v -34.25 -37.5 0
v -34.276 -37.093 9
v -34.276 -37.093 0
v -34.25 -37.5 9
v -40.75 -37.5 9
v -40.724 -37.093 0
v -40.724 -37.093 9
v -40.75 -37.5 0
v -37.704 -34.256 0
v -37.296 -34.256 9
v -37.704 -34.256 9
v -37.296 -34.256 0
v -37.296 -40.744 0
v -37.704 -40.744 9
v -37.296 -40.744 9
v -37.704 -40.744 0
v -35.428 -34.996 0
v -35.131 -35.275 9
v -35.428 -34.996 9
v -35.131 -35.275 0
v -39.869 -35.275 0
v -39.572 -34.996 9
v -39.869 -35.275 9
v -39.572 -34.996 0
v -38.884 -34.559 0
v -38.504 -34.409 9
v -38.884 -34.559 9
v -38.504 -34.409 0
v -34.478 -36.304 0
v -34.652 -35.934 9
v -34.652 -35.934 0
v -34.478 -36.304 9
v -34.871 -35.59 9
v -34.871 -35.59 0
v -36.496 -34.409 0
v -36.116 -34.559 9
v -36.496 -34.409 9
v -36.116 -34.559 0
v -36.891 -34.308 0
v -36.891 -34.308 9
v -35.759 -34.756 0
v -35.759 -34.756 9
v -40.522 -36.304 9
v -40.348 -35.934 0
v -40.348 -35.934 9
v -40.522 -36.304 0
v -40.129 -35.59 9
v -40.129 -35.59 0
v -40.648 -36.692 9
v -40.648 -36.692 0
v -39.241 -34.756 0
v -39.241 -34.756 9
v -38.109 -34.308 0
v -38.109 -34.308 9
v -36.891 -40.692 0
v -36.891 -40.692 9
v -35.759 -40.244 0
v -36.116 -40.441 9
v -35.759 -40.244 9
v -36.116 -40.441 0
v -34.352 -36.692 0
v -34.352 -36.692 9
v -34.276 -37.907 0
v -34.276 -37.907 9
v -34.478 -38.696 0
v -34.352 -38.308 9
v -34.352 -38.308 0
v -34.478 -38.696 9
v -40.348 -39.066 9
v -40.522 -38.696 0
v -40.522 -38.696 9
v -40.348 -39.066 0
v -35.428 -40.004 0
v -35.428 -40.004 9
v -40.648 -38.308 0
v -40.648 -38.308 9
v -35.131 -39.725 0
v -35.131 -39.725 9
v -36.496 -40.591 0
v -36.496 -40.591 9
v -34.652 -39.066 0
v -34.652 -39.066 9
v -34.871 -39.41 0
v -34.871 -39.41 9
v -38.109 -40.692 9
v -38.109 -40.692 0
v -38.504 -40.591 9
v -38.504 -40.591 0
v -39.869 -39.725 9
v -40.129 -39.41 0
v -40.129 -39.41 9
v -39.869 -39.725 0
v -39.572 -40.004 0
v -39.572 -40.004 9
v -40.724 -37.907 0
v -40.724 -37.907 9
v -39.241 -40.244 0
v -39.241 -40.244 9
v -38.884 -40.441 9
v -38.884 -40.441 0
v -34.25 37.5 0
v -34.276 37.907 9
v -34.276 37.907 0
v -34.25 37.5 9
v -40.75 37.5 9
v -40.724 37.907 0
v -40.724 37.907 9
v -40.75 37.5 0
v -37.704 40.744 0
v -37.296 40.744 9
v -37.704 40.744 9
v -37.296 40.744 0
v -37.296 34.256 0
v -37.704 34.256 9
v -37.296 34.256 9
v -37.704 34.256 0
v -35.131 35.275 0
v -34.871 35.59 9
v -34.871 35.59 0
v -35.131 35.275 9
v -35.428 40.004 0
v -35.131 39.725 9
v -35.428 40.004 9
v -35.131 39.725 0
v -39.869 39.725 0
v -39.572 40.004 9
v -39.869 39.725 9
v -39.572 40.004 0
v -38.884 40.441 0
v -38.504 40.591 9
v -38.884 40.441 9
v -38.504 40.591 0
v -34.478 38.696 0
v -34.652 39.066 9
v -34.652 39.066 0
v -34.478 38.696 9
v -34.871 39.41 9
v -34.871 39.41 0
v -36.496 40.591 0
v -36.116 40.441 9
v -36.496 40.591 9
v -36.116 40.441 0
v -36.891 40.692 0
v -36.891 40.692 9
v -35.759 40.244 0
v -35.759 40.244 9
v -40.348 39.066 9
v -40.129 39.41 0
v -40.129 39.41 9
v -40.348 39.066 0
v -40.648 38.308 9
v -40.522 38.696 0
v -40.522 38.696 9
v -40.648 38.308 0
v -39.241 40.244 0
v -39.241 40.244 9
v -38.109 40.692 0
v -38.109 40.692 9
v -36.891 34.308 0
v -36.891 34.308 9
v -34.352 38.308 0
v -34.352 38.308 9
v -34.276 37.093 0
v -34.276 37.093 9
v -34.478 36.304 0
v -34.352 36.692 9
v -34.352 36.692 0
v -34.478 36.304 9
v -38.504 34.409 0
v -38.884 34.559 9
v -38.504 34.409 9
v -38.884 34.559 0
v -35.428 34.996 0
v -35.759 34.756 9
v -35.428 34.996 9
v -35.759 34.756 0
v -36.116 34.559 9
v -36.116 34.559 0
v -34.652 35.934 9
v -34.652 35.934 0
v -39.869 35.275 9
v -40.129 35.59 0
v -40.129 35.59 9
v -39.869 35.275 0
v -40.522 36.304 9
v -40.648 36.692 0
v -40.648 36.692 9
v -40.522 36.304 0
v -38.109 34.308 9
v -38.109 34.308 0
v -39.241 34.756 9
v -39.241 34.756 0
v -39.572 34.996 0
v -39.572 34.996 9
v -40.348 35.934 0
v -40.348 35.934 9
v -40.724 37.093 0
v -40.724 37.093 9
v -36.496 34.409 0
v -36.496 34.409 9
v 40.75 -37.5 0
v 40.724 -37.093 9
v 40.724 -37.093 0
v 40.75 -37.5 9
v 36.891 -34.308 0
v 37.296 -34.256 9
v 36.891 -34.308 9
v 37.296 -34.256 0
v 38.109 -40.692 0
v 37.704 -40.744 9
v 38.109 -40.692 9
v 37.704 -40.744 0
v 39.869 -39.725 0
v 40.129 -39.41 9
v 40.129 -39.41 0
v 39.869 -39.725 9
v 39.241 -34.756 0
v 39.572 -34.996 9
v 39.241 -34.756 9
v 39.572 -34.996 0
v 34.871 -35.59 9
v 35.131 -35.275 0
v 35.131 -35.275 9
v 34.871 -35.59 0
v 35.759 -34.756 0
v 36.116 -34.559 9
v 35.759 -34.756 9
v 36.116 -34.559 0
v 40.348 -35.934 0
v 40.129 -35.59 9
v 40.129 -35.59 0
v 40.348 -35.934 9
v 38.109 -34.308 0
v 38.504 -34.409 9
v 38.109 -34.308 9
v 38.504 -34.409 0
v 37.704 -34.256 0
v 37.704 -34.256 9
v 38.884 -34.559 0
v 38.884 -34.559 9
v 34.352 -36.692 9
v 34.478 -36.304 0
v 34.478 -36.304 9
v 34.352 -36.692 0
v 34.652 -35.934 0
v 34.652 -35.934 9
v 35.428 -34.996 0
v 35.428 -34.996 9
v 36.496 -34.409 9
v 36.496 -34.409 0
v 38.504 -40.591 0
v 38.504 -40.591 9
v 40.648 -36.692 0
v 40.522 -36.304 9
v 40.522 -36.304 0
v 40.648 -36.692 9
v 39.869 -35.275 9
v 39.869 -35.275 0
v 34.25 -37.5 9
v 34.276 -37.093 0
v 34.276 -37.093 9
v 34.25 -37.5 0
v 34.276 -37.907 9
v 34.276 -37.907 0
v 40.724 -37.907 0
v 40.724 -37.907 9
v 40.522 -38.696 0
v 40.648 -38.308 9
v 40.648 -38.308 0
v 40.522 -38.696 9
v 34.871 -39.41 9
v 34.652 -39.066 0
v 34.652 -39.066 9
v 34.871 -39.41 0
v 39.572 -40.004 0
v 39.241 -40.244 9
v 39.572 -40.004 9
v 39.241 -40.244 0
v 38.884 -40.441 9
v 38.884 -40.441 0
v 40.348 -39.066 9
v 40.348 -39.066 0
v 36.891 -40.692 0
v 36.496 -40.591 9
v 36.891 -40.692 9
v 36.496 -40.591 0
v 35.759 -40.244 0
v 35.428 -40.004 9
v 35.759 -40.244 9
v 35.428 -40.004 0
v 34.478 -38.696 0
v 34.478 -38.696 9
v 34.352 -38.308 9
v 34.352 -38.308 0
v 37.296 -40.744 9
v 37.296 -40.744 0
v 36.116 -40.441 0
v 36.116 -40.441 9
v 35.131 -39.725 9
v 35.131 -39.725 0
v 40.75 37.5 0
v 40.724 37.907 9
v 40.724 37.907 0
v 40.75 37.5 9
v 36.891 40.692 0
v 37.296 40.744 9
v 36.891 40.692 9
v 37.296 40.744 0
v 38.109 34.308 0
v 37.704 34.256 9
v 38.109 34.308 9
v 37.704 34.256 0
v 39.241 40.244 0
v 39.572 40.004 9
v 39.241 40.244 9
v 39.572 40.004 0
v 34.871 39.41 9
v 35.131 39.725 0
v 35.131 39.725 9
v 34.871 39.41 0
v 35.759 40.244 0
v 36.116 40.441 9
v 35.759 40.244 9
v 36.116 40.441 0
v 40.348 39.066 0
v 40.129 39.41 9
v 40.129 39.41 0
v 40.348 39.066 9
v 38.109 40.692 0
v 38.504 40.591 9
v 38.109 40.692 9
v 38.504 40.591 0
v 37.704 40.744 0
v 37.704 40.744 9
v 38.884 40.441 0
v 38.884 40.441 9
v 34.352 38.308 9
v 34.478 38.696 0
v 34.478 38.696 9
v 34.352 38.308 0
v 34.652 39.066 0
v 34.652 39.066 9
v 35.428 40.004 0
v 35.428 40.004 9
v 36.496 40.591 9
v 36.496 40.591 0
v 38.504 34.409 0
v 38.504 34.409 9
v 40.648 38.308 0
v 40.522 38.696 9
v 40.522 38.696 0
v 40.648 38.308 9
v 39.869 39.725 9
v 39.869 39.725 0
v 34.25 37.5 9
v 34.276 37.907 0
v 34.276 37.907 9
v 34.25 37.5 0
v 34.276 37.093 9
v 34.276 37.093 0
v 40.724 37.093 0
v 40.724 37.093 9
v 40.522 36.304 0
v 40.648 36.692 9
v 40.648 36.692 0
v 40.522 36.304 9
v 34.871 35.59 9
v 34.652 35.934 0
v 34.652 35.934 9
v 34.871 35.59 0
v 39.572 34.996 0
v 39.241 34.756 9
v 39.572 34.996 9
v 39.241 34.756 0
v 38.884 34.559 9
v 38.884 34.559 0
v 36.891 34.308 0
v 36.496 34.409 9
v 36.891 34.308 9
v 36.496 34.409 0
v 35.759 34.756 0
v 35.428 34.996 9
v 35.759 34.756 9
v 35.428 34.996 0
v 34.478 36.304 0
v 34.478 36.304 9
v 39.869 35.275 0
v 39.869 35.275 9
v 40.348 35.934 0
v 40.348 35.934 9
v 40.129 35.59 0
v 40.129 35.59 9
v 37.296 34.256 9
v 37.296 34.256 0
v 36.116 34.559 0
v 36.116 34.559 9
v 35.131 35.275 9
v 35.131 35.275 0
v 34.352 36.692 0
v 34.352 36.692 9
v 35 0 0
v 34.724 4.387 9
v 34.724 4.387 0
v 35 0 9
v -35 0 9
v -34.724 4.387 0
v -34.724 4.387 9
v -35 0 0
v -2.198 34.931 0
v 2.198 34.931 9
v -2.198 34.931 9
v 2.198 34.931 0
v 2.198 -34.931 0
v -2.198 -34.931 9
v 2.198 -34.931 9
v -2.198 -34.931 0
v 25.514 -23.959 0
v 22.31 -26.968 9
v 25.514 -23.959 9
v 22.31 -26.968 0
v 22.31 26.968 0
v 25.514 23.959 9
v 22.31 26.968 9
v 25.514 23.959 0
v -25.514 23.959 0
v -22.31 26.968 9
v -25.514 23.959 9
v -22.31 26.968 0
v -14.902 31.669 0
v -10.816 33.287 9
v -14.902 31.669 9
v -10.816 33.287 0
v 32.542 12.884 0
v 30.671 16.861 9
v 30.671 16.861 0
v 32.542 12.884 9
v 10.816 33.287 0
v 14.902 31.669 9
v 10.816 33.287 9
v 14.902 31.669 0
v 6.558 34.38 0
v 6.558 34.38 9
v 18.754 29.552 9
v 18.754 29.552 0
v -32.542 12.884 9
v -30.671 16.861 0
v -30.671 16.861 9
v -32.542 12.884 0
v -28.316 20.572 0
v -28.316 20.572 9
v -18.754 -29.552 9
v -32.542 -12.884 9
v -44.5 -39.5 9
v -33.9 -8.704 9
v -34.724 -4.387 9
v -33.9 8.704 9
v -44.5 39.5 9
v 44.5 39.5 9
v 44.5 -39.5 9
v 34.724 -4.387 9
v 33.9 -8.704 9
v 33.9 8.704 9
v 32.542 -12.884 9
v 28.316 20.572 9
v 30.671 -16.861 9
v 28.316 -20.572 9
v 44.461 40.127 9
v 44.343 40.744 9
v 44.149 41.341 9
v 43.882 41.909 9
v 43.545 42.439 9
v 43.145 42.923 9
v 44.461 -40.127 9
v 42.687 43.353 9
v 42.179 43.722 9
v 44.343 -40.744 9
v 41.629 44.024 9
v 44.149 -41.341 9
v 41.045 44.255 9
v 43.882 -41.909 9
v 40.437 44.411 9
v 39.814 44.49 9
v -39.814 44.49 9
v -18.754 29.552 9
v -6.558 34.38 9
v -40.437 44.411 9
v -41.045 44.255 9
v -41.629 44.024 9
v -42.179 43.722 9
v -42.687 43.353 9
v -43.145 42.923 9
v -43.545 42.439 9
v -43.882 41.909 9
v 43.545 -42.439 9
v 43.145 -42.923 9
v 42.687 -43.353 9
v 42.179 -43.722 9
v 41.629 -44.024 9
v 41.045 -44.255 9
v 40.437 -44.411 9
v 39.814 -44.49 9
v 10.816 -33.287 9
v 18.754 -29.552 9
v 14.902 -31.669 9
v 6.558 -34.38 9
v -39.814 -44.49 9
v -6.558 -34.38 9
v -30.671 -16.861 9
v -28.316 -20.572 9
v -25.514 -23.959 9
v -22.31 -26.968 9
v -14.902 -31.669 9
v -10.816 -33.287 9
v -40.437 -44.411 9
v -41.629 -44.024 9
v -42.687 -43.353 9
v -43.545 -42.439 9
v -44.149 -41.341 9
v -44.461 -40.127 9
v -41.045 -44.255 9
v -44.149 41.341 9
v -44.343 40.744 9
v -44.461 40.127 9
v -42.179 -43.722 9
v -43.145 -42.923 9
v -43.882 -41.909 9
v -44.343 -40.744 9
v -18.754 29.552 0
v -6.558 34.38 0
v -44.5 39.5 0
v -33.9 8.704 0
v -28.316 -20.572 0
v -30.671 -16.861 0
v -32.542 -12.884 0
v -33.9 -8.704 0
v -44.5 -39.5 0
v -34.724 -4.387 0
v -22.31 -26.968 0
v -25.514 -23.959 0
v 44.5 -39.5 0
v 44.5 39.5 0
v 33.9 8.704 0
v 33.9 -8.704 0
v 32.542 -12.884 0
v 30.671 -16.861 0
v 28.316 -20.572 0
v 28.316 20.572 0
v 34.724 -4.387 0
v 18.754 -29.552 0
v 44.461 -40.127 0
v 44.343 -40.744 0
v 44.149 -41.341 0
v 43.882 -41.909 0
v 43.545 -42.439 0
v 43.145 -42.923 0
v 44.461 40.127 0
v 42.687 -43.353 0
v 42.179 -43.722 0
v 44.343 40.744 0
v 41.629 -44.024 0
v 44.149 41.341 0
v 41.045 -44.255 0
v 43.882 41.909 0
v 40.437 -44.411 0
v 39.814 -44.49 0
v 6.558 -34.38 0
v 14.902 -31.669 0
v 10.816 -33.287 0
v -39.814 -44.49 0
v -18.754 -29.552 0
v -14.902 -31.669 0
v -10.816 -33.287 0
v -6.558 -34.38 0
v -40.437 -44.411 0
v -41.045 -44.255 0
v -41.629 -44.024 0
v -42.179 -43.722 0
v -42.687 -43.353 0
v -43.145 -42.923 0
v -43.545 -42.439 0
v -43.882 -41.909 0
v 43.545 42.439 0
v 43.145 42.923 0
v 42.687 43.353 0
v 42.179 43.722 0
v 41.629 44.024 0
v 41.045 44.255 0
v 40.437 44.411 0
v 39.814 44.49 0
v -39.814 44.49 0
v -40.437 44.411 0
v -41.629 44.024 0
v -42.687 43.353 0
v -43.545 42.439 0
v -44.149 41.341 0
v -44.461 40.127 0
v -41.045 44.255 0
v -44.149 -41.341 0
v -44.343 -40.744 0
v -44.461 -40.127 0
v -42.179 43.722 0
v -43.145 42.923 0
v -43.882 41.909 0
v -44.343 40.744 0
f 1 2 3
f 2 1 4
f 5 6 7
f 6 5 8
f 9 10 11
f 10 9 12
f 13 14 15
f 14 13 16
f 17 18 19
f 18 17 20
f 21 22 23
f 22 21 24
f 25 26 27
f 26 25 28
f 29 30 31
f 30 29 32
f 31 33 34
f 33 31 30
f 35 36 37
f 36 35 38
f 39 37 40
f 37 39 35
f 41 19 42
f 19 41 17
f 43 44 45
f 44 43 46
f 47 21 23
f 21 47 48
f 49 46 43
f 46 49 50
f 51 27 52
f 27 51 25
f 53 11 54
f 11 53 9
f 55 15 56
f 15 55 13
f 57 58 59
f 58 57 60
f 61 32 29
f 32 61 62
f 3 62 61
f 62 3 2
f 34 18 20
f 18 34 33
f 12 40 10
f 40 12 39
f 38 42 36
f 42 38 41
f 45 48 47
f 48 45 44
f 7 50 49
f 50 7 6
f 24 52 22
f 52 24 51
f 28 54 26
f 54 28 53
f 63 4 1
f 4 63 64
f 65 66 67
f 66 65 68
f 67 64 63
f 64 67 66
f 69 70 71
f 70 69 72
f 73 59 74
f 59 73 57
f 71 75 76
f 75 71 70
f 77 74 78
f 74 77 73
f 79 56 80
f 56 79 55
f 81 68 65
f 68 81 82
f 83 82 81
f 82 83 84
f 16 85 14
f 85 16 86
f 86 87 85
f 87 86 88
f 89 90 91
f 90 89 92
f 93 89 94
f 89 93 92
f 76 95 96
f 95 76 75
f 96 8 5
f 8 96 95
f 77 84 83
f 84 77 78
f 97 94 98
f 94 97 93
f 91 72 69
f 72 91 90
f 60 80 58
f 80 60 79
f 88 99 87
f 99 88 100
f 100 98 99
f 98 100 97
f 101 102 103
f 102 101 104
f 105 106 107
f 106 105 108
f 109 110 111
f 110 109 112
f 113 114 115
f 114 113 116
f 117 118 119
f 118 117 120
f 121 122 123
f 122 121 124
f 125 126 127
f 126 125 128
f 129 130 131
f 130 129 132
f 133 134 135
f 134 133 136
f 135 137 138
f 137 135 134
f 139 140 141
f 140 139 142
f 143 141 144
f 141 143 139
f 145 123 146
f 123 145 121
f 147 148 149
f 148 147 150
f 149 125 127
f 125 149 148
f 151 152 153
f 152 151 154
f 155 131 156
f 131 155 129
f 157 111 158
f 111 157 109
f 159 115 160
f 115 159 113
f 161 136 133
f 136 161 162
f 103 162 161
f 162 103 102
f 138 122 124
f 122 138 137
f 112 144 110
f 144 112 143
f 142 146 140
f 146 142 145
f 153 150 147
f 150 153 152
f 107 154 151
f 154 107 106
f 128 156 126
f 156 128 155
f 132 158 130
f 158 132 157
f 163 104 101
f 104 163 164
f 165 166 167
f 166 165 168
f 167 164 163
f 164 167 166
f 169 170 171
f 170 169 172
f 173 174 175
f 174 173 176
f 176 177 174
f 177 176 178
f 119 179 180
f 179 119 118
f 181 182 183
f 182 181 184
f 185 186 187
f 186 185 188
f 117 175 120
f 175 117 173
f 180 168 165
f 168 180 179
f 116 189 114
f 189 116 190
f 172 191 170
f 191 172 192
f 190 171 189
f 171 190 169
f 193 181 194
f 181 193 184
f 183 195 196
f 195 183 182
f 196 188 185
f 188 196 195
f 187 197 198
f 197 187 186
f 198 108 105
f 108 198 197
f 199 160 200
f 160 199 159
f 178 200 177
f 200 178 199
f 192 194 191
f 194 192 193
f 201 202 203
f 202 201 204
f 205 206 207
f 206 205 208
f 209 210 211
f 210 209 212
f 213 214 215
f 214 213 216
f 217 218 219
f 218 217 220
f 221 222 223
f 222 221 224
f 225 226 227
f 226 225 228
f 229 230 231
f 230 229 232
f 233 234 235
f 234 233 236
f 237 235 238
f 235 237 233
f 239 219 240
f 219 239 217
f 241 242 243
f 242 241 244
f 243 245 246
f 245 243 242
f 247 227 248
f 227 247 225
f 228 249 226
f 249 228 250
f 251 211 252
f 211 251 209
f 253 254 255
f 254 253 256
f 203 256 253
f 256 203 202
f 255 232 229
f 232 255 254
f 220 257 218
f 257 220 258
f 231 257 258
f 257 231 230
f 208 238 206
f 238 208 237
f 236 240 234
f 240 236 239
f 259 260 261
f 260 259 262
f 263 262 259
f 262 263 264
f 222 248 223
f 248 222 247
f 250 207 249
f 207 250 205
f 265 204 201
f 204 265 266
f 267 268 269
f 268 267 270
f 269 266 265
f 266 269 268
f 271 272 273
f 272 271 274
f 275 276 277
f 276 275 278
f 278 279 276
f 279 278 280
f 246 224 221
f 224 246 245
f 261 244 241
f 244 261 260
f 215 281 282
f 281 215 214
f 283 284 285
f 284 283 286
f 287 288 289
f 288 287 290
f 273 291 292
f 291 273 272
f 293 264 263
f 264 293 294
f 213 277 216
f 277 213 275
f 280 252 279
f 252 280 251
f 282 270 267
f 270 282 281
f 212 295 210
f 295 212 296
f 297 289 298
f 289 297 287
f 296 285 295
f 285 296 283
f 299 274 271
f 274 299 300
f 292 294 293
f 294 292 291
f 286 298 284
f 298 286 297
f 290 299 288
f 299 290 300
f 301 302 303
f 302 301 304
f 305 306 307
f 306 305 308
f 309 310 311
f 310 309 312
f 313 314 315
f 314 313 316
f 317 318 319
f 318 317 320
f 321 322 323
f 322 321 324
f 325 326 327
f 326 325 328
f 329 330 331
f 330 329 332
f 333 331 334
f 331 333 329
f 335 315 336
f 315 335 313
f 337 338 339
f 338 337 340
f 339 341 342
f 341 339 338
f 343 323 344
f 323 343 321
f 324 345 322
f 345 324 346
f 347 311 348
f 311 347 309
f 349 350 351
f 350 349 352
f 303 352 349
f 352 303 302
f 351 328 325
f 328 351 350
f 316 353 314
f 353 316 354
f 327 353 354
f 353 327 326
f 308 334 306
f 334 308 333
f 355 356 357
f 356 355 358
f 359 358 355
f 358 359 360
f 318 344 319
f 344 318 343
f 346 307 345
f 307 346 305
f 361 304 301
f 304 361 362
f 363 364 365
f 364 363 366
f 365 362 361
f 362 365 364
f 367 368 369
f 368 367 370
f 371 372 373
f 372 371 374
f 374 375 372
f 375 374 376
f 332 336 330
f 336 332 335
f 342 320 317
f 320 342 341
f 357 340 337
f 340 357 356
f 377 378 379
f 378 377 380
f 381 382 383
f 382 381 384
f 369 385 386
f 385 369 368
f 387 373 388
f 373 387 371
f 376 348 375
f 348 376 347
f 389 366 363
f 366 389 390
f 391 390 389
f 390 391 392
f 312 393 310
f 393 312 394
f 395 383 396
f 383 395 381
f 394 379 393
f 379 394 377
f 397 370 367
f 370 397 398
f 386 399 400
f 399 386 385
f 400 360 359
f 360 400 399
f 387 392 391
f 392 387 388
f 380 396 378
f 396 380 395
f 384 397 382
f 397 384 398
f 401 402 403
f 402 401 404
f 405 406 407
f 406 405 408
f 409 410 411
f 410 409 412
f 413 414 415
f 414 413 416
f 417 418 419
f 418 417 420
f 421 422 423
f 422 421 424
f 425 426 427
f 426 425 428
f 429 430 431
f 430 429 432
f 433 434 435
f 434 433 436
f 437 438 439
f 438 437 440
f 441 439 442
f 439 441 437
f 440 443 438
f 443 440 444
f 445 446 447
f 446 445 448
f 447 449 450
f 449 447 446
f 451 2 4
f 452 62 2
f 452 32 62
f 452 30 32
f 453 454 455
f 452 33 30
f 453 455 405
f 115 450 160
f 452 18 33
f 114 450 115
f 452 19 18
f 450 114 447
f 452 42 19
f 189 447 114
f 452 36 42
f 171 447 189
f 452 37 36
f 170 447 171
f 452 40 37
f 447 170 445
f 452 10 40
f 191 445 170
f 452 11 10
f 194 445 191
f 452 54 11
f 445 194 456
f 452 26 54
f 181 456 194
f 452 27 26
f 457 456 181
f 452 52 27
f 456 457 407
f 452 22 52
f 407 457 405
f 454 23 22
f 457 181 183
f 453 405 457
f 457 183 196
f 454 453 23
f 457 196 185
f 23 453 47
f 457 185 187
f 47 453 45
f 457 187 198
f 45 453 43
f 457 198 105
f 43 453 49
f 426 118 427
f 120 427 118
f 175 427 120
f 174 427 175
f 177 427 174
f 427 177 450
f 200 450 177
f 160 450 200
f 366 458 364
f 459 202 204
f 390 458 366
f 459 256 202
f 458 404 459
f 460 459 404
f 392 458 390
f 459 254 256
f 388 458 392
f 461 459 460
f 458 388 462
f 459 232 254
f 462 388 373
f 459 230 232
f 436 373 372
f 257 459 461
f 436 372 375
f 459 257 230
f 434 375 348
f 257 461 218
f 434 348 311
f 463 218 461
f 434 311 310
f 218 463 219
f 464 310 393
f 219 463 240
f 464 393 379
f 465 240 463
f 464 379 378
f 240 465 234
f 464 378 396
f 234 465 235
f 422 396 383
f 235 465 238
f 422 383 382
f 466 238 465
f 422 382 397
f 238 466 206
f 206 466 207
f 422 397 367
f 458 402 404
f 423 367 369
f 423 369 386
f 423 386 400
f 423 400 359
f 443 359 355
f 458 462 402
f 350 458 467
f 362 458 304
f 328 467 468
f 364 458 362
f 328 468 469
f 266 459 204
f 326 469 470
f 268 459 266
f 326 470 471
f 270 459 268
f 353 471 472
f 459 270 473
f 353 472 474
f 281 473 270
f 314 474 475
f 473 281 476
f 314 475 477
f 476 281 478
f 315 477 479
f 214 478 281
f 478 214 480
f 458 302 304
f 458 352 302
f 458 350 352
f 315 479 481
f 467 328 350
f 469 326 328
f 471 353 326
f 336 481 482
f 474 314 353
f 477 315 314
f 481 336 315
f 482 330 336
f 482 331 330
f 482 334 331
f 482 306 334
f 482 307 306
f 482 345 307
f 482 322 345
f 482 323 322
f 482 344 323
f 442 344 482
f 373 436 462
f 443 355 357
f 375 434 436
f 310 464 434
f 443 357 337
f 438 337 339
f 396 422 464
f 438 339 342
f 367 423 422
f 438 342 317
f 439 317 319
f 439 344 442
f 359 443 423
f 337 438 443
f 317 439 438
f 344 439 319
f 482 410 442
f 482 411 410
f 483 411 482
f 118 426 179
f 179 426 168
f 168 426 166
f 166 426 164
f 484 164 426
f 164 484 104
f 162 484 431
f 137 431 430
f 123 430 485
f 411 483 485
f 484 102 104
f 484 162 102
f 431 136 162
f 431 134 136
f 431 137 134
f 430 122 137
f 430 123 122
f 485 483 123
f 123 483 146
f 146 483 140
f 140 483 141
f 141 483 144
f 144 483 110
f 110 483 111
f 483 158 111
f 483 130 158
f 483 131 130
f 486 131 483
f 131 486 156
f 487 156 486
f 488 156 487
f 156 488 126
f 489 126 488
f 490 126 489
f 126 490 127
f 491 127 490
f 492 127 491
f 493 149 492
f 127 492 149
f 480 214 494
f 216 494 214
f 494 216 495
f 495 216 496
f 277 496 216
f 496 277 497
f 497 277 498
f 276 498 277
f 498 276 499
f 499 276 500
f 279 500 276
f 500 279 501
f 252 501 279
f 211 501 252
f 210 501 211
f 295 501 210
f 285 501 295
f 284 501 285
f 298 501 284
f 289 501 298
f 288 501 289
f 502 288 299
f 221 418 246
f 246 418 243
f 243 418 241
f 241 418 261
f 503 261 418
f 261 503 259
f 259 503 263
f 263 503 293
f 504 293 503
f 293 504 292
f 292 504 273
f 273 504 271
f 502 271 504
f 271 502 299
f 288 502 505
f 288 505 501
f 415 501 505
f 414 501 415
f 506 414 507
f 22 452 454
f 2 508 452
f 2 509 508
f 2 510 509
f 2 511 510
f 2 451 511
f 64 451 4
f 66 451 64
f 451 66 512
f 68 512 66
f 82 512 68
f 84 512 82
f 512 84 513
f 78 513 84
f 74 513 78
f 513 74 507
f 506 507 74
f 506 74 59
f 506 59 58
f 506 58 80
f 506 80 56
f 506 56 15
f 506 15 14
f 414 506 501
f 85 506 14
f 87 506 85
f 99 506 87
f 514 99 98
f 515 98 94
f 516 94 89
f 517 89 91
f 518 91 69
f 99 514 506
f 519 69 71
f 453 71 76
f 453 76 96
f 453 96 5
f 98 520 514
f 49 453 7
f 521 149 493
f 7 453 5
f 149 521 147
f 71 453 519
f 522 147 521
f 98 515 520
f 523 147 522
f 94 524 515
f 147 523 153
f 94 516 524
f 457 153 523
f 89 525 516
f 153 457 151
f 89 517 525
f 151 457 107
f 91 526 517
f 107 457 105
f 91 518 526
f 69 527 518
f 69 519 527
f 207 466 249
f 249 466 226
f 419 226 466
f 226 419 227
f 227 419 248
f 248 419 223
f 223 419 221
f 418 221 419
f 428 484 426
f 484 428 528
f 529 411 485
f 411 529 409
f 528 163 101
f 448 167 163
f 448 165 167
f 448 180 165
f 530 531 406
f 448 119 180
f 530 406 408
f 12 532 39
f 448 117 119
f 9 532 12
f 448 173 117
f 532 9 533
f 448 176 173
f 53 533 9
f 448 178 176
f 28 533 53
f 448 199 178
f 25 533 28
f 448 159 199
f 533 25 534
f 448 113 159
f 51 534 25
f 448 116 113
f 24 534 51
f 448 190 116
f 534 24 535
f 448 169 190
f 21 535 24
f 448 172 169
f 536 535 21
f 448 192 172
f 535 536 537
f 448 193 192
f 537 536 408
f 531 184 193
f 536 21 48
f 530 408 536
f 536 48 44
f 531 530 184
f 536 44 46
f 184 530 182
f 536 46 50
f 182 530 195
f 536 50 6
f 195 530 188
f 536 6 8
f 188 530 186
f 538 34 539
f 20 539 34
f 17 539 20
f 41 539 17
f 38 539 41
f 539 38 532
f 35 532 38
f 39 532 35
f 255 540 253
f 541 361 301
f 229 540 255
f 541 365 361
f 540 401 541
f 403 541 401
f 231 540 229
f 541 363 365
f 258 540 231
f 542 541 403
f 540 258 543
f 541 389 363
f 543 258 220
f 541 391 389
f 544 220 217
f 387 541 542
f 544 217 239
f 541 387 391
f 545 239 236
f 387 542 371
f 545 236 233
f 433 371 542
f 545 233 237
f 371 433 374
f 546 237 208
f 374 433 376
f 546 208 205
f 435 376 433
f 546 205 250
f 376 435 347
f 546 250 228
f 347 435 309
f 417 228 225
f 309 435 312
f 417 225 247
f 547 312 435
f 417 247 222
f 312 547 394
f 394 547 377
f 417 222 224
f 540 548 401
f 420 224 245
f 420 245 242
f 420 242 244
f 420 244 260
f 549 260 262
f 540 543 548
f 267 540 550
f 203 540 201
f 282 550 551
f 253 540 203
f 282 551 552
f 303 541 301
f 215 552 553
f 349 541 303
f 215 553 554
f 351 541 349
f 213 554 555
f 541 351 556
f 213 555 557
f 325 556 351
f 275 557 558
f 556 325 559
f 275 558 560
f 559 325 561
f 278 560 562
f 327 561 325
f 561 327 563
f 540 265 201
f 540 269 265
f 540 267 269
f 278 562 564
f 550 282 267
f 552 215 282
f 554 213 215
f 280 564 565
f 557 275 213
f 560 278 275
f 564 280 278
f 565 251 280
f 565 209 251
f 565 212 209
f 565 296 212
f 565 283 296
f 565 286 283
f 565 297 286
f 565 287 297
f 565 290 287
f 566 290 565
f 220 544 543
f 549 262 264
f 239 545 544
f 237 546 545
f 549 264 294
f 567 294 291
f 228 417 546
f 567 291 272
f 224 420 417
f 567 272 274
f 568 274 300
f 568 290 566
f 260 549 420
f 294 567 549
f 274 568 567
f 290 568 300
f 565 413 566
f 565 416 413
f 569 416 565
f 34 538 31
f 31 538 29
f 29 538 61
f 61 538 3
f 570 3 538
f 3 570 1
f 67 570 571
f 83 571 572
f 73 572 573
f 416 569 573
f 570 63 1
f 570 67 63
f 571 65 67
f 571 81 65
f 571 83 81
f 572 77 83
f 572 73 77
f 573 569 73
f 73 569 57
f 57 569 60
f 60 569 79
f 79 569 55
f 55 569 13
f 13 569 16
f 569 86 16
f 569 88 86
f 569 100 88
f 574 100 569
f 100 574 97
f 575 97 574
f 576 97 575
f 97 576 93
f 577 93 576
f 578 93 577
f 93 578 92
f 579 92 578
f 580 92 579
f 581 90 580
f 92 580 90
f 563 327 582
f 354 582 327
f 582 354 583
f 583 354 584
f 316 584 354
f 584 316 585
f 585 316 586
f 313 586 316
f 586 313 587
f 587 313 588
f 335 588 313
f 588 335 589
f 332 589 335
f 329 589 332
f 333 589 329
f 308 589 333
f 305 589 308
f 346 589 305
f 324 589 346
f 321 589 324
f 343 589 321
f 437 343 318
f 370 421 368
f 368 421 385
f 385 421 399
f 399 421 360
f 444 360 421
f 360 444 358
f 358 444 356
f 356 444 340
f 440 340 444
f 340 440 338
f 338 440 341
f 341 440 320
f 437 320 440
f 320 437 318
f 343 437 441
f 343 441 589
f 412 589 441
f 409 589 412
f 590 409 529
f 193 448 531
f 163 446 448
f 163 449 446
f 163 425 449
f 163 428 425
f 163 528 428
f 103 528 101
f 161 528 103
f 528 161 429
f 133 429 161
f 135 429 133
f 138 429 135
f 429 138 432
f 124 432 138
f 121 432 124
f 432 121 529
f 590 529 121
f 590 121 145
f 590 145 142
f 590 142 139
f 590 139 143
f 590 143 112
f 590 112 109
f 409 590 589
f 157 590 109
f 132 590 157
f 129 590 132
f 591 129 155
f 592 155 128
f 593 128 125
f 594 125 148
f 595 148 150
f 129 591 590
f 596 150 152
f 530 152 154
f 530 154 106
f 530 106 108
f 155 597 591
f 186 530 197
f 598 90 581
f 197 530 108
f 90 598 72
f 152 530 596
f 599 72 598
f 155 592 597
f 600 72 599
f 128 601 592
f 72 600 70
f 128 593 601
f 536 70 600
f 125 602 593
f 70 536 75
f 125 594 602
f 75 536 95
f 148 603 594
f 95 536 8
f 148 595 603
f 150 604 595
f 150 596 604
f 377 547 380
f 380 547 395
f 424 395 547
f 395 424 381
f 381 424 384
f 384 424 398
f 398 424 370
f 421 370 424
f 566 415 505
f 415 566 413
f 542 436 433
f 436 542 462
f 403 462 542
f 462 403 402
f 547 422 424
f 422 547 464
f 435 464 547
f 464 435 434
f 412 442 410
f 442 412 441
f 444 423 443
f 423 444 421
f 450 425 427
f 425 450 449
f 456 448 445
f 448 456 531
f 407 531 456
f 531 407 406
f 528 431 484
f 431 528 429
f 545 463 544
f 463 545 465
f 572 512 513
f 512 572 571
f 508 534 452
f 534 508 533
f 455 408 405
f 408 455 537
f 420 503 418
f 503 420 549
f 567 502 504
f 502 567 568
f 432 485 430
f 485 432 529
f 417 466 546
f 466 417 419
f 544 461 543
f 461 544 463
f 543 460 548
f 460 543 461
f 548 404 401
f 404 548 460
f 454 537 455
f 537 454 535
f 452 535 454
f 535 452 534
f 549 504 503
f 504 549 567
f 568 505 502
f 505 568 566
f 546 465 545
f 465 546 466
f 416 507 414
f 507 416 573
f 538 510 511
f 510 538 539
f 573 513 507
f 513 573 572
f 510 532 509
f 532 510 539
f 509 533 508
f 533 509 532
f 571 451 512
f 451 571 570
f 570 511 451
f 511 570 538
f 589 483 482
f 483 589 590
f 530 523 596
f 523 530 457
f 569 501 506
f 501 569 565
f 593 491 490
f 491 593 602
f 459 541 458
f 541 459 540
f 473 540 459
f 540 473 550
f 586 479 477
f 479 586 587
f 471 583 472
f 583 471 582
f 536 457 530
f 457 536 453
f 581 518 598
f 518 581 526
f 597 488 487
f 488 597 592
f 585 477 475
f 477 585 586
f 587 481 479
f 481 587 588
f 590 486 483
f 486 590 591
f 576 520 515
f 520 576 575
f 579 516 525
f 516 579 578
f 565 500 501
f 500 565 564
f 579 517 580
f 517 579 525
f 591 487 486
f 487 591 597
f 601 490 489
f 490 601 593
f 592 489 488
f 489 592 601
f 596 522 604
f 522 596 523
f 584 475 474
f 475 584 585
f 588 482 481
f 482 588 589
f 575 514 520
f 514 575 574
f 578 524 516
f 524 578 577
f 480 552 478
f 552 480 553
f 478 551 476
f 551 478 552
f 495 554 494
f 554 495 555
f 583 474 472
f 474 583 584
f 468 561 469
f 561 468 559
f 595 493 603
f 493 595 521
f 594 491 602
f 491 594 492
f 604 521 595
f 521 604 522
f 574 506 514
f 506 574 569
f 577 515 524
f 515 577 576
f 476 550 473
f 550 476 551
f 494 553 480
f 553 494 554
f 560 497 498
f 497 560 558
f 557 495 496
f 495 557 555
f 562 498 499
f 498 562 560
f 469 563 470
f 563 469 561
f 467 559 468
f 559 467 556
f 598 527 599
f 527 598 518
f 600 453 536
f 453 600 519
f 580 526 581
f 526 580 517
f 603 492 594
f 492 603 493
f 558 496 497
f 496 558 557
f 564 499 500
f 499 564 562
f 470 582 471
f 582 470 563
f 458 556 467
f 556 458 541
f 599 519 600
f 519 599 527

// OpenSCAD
$fn = 50;


difference() {
	union() {
		hull() {
			translate(v = [-39.5000000000, 39.5000000000, 0]) {
				cylinder(h = 9, r = 5);
			}
			translate(v = [39.5000000000, 39.5000000000, 0]) {
				cylinder(h = 9, r = 5);
			}
			translate(v = [-39.5000000000, -39.5000000000, 0]) {
				cylinder(h = 9, r = 5);
			}
			translate(v = [39.5000000000, -39.5000000000, 0]) {
				cylinder(h = 9, r = 5);
			}
		}
	}
	union() {
		#translate(v = [-37.5000000000, -37.5000000000, -100.0000000000]) {
			cylinder(h = 200, r = 3.2500000000);
		}
		#translate(v = [-37.5000000000, 37.5000000000, -100.0000000000]) {
			cylinder(h = 200, r = 3.2500000000);
		}
		#translate(v = [37.5000000000, -37.5000000000, -100.0000000000]) {
			cylinder(h = 200, r = 3.2500000000);
		}
		#translate(v = [37.5000000000, 37.5000000000, -100.0000000000]) {
			cylinder(h = 200, r = 3.2500000000);
		}
		#cylinder(h = 9, r = 35.0000000000);
	}
}
